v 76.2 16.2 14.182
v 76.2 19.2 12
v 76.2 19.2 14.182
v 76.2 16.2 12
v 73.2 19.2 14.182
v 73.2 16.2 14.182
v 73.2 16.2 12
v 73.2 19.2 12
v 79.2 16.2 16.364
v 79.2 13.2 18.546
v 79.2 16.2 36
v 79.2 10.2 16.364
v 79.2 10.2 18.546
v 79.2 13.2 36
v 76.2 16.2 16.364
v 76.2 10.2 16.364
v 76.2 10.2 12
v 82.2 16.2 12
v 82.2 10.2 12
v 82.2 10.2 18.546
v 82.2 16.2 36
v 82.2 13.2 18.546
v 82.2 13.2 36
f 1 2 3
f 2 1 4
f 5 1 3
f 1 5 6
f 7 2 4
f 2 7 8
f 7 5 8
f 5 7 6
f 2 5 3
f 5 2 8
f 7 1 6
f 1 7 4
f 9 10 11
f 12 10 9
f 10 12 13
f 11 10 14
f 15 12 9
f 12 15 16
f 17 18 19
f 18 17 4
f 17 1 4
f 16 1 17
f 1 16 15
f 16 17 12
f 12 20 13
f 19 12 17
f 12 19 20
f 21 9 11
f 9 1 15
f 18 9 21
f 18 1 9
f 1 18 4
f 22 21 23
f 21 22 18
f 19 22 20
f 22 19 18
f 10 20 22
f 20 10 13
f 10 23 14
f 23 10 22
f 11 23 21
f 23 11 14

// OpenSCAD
union() {
	translate(v = [73.2, 16.200000000000003, 12.0]) {
		cube(size = [3.0, 3.0, 2.1818181818181817]);
	}
	translate(v = [76.2, 10.200000000000001, 12.0]) {
		cube(size = [3.0, 3.0, 4.363636363636363]);
	}
	translate(v = [76.2, 13.200000000000001, 12.0]) {
		cube(size = [3.0, 3.0, 4.363636363636363]);
	}
	translate(v = [79.2, 10.200000000000001, 12.0]) {
		cube(size = [3.0, 3.0, 6.545454545454546]);
	}
	translate(v = [79.2, 13.200000000000001, 12.0]) {
		cube(size = [3.0, 3.0, 24.0]);
	}
}
